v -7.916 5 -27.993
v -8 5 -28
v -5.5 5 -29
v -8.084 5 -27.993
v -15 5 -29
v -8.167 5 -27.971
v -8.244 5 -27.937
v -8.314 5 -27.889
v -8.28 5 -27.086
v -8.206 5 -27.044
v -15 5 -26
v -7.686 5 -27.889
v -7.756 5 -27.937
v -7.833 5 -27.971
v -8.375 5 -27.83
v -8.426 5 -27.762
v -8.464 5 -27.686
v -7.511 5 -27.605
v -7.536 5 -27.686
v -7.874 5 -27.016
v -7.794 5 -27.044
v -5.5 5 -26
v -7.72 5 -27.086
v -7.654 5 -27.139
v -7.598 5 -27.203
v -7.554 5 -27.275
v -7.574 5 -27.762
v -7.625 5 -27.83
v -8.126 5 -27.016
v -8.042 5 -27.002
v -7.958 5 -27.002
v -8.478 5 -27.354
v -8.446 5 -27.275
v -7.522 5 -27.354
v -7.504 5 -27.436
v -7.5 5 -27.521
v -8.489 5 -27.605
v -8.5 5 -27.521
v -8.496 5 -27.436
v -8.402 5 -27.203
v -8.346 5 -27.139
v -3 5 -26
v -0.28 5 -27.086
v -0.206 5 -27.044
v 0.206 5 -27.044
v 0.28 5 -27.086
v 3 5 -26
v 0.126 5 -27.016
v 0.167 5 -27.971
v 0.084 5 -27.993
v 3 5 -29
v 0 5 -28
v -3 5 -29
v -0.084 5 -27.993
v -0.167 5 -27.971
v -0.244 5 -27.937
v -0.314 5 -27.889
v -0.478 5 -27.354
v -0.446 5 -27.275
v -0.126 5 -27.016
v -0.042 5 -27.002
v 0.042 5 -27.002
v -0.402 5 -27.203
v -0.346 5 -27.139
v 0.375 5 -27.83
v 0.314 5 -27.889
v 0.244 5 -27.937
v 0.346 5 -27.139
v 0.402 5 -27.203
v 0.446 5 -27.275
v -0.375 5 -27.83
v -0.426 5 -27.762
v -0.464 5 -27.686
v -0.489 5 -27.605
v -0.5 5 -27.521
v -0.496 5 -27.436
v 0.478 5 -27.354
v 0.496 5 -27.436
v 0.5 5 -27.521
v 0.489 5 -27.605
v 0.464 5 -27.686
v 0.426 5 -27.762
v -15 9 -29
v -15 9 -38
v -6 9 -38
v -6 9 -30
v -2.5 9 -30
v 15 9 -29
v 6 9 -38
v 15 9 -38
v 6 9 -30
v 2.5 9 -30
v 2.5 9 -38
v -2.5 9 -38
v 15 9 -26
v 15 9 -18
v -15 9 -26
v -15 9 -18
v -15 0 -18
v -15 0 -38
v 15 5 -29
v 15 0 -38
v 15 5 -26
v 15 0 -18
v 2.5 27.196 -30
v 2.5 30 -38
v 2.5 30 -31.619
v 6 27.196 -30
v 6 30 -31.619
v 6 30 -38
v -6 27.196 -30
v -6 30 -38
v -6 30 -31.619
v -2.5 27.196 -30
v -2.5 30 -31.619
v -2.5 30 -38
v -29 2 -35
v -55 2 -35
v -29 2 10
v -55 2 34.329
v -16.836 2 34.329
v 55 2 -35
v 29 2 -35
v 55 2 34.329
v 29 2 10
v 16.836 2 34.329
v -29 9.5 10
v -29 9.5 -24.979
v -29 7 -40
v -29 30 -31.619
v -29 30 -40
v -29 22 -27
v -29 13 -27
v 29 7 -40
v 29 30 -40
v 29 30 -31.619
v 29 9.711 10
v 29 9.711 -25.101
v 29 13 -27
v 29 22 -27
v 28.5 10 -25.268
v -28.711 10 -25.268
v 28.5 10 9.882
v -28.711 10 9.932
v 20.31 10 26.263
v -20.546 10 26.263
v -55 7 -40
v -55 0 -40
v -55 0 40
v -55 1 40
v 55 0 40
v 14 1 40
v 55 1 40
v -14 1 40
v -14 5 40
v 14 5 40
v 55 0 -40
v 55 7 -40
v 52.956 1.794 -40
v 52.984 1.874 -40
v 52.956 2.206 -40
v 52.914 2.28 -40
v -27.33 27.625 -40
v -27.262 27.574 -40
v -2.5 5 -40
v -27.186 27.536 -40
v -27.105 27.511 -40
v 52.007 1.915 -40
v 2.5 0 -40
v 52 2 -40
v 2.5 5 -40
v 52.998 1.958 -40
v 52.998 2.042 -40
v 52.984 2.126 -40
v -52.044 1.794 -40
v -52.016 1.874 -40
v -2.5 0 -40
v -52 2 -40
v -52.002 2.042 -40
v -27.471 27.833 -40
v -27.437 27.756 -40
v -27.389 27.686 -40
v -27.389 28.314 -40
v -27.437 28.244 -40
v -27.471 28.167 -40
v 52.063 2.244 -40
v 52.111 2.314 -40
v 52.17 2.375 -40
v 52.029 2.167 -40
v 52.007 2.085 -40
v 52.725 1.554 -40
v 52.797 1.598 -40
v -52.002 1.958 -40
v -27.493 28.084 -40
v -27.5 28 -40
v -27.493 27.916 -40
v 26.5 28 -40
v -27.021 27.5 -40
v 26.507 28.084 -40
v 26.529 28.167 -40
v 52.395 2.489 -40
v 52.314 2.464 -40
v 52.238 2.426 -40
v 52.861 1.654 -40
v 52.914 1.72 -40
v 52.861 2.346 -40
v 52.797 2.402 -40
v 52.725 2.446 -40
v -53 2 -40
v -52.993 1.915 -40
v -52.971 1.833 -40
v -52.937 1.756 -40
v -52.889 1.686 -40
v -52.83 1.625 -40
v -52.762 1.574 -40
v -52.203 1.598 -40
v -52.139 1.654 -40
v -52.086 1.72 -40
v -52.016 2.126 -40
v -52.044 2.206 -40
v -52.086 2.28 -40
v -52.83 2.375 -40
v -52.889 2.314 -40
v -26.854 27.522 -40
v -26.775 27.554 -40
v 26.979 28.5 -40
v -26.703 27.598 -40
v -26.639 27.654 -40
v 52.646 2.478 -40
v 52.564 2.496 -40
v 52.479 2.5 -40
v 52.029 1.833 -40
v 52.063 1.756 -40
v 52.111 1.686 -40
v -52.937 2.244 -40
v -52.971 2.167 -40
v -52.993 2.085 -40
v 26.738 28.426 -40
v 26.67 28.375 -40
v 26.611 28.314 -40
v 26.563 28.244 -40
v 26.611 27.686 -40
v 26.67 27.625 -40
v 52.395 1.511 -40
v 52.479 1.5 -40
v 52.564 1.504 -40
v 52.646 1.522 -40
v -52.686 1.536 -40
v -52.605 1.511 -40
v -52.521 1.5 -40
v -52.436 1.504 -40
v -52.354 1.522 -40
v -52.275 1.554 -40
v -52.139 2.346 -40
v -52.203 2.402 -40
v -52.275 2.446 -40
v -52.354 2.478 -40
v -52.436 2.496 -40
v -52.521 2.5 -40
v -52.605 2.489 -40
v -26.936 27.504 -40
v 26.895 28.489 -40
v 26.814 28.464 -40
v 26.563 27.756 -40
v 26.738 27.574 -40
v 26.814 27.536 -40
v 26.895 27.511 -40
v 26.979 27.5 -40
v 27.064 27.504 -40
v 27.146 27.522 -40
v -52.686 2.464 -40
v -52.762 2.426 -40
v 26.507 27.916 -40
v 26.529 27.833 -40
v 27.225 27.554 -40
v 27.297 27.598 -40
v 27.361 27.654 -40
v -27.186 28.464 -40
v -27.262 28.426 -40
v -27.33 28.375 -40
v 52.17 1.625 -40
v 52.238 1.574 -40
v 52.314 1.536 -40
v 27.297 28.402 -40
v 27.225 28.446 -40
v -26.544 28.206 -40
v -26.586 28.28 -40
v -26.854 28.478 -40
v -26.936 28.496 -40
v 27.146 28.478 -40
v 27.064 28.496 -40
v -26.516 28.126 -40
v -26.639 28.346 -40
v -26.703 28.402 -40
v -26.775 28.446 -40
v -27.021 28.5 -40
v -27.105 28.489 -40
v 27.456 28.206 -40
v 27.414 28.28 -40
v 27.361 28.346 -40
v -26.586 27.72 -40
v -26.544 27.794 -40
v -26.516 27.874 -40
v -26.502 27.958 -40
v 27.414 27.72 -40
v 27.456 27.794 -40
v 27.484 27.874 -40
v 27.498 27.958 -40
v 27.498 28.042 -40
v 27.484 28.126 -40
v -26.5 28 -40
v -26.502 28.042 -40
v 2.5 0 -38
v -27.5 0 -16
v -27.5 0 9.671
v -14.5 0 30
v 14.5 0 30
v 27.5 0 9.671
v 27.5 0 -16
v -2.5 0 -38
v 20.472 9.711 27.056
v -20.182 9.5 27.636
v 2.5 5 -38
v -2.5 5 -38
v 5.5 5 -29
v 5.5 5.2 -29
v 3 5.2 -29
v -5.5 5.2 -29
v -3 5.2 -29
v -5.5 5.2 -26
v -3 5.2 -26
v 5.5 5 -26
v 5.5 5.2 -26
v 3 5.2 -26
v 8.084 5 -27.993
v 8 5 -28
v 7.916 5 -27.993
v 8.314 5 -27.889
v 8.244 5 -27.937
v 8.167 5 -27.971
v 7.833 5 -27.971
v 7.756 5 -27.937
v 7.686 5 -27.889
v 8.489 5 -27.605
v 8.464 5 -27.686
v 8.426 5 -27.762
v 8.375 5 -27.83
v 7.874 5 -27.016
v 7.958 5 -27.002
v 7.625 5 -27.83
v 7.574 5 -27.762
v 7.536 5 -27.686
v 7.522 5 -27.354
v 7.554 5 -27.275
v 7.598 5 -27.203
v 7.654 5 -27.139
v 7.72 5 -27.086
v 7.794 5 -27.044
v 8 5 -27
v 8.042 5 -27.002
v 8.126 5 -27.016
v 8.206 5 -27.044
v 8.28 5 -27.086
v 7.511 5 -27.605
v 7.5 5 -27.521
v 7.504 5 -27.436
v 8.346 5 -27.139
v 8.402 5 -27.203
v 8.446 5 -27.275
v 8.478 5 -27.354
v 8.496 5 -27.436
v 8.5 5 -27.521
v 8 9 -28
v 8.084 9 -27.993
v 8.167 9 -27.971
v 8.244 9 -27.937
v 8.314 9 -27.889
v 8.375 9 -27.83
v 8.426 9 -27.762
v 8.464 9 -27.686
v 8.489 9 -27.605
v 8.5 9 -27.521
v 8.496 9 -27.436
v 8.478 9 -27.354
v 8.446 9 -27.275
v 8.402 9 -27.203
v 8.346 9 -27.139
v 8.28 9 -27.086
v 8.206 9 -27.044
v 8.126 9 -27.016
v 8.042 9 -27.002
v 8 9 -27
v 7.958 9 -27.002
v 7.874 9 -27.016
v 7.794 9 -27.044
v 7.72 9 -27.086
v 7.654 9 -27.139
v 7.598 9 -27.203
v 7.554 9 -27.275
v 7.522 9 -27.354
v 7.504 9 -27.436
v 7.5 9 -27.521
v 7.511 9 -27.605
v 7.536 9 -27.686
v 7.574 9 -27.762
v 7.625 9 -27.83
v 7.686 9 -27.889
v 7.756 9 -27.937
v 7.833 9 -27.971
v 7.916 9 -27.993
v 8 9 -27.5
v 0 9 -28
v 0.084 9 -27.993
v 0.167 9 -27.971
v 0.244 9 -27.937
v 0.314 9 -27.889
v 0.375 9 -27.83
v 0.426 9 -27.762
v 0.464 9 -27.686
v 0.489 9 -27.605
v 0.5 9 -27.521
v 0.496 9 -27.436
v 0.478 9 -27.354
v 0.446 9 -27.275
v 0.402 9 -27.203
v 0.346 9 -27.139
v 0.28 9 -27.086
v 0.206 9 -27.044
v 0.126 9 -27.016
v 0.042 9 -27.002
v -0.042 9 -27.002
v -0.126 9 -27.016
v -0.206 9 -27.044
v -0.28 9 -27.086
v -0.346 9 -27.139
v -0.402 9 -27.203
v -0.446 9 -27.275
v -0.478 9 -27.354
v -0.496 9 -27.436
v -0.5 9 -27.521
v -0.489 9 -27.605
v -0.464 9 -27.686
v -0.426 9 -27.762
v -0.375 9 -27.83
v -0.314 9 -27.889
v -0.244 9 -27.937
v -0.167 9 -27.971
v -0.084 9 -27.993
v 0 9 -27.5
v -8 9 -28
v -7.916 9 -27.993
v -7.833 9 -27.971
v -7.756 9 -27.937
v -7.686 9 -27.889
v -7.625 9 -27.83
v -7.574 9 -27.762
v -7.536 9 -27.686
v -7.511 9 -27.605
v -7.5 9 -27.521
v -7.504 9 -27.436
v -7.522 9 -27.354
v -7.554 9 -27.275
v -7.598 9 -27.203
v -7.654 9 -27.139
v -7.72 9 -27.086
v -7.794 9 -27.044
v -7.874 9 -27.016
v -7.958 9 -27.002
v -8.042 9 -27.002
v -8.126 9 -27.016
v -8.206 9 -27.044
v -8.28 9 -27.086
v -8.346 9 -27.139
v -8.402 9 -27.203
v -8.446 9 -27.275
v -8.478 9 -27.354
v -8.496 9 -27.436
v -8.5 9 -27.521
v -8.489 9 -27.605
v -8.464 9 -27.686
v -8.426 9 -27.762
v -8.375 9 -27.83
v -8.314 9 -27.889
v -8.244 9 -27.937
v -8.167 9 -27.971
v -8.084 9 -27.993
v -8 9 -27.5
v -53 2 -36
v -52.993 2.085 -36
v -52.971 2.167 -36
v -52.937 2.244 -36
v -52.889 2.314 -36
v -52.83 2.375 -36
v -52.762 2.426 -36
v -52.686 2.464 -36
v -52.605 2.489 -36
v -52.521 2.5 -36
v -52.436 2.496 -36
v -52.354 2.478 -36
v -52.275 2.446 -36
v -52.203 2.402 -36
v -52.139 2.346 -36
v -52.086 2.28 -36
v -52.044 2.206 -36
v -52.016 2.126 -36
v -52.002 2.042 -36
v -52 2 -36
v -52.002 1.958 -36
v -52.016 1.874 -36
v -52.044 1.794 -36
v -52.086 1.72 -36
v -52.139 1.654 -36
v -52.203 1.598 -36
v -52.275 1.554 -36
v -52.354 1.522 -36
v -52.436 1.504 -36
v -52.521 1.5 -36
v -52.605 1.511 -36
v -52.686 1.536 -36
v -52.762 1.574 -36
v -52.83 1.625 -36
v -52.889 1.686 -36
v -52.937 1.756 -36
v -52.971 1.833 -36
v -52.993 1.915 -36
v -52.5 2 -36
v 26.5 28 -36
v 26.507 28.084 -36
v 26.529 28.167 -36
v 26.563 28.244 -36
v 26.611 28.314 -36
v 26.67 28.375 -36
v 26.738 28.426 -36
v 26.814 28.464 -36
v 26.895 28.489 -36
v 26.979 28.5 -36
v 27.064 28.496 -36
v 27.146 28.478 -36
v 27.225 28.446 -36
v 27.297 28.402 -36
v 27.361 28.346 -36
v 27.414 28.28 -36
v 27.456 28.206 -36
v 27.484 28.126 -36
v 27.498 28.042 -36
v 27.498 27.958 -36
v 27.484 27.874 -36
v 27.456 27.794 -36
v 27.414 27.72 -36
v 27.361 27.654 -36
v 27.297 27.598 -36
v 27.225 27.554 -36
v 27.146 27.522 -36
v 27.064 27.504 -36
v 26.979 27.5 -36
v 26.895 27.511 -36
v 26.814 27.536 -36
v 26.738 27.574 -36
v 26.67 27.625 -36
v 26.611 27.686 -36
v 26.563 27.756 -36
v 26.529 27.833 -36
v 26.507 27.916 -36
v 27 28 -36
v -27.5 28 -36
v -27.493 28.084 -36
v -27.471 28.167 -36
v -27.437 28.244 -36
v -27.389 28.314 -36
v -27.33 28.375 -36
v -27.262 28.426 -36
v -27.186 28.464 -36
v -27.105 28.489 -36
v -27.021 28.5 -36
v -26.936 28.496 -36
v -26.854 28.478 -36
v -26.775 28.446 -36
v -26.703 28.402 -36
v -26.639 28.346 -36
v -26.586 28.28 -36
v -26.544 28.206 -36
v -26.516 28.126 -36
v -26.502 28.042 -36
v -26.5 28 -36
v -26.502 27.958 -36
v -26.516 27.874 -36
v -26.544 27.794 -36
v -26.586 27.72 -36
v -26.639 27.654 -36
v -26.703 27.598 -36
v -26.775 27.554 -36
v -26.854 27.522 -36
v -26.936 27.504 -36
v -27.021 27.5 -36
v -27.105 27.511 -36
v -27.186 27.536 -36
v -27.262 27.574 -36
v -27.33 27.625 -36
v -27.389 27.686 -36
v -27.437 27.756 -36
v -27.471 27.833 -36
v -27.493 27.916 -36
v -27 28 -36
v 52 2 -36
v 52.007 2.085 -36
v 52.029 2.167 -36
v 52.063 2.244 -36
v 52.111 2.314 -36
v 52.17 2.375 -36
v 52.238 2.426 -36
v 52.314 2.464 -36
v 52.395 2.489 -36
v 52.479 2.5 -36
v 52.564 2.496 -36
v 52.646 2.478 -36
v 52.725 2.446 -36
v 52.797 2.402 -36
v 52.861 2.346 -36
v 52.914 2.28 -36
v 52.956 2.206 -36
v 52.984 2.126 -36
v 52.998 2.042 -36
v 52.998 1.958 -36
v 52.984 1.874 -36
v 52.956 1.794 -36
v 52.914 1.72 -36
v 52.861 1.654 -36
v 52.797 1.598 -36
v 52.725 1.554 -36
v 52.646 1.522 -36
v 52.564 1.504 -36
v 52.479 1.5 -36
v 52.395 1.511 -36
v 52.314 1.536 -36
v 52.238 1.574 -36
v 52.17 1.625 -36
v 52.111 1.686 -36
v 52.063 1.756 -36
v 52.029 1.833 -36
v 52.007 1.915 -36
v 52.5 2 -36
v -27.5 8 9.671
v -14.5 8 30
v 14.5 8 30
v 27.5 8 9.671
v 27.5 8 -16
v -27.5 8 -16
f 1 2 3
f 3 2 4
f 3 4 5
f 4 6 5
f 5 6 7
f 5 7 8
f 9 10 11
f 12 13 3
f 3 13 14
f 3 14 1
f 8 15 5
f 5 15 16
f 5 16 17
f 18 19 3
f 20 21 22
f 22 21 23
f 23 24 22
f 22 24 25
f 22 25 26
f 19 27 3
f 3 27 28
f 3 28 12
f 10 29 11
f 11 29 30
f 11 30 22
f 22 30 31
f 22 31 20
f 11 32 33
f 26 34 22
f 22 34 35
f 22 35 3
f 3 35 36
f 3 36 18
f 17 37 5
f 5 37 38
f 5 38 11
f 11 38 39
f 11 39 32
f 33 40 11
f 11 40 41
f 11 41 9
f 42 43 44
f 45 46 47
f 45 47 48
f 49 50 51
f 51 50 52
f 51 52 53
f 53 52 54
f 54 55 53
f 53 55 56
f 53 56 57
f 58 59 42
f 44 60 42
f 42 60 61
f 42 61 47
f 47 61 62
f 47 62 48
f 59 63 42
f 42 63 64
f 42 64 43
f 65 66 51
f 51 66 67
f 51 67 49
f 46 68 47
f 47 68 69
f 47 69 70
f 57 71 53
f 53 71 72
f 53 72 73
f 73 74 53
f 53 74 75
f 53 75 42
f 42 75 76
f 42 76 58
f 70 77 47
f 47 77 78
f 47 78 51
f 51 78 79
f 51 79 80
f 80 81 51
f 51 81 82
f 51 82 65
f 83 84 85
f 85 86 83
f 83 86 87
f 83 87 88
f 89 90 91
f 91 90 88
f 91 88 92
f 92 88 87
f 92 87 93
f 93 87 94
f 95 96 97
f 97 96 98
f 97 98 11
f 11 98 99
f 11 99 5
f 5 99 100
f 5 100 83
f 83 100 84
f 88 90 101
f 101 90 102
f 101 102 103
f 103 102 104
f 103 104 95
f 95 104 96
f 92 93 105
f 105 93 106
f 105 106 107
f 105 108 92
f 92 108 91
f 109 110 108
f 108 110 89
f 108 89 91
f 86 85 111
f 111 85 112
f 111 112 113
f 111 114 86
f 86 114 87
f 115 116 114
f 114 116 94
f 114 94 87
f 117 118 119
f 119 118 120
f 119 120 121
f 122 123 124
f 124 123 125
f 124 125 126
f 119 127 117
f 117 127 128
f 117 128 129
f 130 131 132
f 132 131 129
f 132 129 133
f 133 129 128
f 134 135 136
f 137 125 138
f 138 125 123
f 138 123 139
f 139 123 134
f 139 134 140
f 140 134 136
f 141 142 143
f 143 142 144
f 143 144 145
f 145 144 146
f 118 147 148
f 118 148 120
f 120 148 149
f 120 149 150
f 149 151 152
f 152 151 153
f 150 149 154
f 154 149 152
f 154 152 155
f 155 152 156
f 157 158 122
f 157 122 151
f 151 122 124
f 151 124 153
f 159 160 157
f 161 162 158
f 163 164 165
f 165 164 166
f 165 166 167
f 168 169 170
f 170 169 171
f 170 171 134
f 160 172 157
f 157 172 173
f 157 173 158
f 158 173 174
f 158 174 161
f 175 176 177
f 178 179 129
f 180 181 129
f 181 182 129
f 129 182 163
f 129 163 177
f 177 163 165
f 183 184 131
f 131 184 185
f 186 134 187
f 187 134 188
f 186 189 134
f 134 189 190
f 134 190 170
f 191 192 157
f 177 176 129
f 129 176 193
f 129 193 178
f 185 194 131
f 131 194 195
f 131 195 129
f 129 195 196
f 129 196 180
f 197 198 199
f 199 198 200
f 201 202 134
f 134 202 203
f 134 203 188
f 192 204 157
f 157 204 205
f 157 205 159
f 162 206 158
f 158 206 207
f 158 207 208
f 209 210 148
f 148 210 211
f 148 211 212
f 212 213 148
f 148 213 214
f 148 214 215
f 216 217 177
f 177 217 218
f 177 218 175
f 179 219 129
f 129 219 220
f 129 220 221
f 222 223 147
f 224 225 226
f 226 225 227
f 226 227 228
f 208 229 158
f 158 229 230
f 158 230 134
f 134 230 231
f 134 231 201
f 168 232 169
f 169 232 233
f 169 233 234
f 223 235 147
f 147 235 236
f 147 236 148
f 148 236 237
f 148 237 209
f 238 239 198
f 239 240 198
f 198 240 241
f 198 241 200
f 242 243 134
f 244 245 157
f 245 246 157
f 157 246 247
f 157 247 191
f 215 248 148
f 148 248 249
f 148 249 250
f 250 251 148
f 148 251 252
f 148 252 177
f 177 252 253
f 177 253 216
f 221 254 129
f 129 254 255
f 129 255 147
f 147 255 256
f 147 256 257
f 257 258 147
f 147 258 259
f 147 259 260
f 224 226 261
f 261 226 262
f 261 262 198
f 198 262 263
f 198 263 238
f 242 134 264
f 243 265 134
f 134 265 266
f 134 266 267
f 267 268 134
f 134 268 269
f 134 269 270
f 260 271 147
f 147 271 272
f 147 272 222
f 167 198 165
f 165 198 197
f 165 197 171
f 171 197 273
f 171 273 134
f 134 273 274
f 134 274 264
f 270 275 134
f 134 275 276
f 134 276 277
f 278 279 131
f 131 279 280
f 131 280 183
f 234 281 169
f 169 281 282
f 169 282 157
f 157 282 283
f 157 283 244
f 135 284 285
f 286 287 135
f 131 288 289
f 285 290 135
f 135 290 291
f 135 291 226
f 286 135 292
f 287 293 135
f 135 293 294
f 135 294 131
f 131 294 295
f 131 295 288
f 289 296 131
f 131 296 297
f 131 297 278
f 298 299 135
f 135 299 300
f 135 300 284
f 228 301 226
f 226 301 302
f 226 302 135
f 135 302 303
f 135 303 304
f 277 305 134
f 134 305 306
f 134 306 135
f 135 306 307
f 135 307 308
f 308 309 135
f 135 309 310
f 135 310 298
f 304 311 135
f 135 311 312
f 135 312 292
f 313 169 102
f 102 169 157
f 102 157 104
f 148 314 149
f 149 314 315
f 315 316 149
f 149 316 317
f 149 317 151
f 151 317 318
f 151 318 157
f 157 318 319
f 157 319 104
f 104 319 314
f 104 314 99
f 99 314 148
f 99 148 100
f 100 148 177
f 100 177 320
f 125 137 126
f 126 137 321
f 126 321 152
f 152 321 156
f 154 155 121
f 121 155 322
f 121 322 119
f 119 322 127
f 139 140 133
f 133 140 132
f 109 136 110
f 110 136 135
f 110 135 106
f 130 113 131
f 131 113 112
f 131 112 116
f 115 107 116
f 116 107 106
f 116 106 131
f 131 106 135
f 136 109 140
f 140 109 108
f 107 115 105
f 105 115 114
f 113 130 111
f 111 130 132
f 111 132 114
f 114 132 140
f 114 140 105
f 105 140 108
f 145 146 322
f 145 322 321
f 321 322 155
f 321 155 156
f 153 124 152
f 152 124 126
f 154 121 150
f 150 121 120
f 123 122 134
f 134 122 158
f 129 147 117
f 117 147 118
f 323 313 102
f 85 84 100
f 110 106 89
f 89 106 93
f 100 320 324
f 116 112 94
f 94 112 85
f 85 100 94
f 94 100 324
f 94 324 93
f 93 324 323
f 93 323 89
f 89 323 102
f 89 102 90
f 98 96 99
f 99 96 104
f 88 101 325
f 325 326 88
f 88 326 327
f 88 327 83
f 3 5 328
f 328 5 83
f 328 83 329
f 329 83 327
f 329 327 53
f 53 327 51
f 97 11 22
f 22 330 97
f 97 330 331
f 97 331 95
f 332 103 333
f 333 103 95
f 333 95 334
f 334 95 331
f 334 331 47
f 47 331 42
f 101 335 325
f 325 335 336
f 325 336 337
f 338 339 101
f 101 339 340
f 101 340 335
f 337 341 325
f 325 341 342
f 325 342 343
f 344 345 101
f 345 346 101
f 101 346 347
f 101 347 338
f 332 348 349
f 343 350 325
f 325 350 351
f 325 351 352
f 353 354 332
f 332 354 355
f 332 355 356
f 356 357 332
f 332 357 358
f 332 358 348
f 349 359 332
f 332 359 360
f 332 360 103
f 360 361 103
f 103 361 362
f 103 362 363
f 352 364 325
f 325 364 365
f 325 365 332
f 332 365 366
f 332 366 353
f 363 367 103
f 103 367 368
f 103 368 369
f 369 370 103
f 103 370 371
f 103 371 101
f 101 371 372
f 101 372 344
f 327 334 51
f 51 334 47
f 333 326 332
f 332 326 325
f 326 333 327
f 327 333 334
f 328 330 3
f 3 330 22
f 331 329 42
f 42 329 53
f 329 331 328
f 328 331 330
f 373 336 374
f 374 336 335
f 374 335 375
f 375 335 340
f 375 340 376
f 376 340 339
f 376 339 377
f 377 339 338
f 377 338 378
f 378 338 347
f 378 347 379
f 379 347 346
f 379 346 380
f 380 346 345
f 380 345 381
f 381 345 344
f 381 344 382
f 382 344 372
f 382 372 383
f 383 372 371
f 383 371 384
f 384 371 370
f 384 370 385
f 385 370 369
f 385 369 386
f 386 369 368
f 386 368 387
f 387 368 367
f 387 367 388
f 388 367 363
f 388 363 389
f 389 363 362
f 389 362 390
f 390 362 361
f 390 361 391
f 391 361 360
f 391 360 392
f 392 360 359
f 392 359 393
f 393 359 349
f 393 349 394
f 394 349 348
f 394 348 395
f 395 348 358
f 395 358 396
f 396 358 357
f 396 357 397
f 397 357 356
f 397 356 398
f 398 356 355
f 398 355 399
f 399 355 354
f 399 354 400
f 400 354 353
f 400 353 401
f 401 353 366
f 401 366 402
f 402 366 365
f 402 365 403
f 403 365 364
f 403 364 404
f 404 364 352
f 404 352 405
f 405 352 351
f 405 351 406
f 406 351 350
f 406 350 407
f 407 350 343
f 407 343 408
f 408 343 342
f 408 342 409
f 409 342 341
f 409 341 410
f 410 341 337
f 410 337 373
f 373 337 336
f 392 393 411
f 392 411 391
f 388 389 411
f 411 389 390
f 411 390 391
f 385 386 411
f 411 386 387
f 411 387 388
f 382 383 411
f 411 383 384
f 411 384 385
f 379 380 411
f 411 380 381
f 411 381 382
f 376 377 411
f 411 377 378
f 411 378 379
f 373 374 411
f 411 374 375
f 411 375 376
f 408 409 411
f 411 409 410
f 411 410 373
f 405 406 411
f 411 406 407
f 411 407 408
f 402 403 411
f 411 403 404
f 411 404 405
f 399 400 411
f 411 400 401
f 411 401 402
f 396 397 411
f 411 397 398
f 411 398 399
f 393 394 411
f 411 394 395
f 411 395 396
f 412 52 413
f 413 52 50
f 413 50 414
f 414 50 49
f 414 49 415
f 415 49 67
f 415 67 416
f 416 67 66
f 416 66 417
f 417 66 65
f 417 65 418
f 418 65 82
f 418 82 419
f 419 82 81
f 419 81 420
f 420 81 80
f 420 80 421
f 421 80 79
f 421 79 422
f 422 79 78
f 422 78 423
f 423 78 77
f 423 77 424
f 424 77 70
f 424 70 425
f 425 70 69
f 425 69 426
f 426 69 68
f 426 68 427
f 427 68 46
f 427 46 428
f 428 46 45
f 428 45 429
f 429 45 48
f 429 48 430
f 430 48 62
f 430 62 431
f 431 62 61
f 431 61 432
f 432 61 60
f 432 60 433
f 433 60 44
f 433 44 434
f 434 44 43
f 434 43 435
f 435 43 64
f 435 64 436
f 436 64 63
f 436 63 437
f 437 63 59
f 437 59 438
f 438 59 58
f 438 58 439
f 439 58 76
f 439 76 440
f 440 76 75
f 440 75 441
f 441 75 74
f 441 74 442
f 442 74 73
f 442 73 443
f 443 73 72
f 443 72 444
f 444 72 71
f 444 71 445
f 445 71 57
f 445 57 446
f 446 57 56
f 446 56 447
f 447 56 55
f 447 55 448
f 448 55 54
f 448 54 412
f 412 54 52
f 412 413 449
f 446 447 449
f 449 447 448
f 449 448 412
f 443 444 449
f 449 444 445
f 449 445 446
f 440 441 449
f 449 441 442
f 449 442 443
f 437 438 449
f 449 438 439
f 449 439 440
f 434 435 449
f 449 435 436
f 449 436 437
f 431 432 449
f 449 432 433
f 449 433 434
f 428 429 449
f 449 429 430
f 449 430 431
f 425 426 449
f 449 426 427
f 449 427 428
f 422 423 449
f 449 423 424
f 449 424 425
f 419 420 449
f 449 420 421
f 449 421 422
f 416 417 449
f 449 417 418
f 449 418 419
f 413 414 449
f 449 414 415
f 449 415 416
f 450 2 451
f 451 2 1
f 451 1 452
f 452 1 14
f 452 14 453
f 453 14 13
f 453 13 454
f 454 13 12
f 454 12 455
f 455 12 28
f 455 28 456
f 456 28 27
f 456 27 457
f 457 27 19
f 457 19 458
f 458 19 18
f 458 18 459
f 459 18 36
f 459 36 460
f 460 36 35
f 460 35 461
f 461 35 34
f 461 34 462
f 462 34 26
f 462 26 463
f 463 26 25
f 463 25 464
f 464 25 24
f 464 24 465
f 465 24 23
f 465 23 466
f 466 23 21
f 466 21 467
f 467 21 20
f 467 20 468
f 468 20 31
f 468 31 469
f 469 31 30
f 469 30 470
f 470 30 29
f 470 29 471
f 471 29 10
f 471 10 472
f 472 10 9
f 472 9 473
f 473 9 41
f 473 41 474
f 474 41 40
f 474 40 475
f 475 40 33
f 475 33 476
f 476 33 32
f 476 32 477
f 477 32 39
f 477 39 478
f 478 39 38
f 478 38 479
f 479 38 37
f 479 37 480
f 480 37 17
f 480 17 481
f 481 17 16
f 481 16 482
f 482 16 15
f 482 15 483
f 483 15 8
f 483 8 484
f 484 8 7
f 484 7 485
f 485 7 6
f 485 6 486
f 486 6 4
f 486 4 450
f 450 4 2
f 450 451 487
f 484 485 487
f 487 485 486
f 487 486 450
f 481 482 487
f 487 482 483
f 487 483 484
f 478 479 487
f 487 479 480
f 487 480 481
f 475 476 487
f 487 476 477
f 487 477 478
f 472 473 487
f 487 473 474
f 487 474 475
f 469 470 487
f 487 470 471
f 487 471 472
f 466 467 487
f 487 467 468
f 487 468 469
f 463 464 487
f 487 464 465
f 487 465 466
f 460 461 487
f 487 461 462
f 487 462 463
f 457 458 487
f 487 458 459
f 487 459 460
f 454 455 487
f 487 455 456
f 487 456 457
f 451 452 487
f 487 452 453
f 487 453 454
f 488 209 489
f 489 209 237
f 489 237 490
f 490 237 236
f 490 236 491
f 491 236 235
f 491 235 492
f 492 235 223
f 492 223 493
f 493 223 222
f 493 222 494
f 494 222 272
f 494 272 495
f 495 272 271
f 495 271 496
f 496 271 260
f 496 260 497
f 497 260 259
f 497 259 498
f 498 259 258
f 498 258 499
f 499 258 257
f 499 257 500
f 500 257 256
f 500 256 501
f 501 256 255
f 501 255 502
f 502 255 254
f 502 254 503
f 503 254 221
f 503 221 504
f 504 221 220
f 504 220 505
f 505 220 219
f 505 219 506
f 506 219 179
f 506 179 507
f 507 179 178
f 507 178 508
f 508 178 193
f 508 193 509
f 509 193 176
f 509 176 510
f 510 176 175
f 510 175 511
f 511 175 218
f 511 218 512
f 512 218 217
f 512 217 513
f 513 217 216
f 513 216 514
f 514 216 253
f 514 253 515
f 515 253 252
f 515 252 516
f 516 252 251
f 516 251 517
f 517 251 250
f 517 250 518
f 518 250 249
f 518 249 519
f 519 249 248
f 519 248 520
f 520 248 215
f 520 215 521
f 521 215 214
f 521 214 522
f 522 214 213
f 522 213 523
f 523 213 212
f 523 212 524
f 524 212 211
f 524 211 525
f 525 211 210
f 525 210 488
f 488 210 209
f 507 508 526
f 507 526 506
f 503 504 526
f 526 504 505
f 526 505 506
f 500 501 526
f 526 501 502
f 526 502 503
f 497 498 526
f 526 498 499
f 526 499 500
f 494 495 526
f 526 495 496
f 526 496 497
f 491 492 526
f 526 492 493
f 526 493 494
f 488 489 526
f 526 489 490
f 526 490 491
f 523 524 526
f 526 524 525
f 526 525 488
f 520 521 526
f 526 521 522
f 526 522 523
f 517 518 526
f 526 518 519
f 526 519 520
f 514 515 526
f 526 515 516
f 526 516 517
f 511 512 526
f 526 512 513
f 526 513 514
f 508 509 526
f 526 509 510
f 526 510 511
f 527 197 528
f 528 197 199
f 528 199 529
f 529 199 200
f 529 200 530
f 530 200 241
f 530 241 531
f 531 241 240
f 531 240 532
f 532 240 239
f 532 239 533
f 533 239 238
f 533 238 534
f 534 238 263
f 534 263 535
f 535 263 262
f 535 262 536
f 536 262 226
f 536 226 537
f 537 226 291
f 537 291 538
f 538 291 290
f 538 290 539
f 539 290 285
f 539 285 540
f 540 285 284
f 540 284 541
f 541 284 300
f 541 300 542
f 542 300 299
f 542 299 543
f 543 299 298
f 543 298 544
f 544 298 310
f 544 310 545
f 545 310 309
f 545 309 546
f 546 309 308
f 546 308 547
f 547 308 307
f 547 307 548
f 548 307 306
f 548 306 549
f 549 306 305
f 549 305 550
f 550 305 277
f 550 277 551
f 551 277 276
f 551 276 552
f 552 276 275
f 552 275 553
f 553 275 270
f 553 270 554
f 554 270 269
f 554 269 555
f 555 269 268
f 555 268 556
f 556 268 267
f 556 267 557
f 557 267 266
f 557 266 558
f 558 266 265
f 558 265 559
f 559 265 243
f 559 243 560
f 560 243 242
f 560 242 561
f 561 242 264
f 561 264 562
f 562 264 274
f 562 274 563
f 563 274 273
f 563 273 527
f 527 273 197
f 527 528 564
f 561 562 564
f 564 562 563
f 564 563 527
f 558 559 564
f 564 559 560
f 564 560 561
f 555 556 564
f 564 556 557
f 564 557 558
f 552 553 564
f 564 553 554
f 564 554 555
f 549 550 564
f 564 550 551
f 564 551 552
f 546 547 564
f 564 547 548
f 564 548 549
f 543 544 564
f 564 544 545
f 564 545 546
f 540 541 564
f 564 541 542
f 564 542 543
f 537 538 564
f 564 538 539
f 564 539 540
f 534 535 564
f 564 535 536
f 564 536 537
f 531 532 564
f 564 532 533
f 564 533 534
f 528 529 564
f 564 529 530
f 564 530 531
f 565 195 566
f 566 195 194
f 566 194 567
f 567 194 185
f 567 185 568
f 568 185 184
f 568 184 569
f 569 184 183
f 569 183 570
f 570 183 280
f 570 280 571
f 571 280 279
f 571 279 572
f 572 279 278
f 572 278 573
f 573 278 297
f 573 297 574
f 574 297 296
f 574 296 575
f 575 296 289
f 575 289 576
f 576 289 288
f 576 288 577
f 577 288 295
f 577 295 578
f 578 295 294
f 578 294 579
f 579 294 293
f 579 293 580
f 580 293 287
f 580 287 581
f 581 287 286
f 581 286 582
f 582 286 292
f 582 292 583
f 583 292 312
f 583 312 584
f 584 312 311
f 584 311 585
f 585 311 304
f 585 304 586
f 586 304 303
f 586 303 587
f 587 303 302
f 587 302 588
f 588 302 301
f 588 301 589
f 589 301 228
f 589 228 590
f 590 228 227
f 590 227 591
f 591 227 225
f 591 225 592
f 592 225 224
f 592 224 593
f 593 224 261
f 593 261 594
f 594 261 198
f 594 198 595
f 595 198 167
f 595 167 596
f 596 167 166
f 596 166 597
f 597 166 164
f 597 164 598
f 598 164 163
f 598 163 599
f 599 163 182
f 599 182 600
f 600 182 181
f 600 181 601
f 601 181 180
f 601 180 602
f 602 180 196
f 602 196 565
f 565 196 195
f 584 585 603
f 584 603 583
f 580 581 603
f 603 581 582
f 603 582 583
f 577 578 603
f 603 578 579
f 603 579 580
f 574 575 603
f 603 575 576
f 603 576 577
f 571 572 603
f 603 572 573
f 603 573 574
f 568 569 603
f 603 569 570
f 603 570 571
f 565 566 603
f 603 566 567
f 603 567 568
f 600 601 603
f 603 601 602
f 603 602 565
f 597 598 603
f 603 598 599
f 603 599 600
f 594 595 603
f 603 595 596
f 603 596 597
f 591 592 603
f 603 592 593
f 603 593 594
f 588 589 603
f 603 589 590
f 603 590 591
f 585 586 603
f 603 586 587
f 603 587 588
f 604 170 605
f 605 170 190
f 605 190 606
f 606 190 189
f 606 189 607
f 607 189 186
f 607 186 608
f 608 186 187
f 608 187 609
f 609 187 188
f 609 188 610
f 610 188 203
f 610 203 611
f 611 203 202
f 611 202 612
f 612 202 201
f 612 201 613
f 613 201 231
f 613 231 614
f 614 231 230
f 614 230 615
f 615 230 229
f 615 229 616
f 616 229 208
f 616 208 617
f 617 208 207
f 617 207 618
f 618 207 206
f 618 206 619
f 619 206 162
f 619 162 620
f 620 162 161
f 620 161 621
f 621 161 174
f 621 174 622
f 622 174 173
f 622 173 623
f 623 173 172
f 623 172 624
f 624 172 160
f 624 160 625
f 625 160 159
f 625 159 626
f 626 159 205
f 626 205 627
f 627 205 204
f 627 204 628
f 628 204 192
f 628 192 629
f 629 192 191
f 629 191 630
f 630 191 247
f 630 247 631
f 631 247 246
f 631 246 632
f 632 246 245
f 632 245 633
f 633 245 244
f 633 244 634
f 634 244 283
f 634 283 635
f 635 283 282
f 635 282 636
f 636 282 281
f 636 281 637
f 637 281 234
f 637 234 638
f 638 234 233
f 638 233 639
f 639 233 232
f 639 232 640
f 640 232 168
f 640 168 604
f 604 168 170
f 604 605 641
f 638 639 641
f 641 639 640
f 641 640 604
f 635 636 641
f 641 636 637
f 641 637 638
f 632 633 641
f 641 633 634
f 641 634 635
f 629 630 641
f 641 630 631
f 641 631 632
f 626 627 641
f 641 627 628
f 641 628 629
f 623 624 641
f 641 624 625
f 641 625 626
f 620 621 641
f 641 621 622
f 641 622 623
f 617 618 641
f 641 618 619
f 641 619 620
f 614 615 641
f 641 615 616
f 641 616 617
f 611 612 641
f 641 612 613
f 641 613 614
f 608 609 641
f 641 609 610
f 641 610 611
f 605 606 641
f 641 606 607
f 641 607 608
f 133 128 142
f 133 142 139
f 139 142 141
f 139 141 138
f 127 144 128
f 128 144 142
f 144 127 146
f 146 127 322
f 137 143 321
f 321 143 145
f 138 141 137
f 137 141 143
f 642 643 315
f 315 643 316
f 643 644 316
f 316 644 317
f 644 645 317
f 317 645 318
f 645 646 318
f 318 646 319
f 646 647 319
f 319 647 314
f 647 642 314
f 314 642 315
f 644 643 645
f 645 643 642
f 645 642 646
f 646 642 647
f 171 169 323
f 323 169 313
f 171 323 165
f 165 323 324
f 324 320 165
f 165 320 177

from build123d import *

# Parameters (mm, degrees)
SKETCH_1_W                  = 110
SKETCH_1_H                  = 80
EXTRUDE_1_DEPTH             = 2
SKETCH_2_W                  = 58
SKETCH_2_H                  = 80
EXTRUDE_2_DEPTH             = 8
CUT_EXTRUDE_1_DEPTH         = 8
SKETCH_4_W                  = 58
SKETCH_4_H                  = 13
EXTRUDE_3_DEPTH             = 28
CHAMFER_1_SIZE              = 8
CHAMFER_1_SIZE2             = 4.618802154
CHAMFER_2_SIZE              = 5
CHAMFER_2_SIZE2             = 13.737387097
CHAMFER_3_SIZE              = 1
CHAMFER_3_SIZE2             = 5.67128182
EXTRUDE_5_REACH             = 28
EXTRUDE_5_DIRECTION_2_REACH = 86
SKETCH_5_W                  = 3.5
SKETCH_5_H                  = 8
CUT_EXTRUDE_2_DEPTH         = 31
SKETCH_6_W                  = 30
SKETCH_6_H                  = 20
CUT_EXTRUDE_3_DEPTH         = 9
SKETCH_7_W                  = 30
SKETCH_7_H                  = 3
EXTRUDE_4_DEPTH             = 4
SKETCH_8_W                  = 2.5
SKETCH_8_H                  = 3
CUT_EXTRUDE_4_DEPTH         = 0.2
SKETCH_10_R                 = 0.5
CUT_EXTRUDE_5_DEPTH         = 4
SKETCH_11_R                 = 0.5
CUT_EXTRUDE_6_DEPTH         = 4
CHAMFER_4_SIZE              = 3
CHAMFER_4_SIZE2             = 1.732050808
CHAMFER_5_SIZE              = 0.5
CHAMFER_5_SIZE2             = 0.288675135
CHAMFER_5_PART_2_SIZE       = 0.5
CHAMFER_5_PART_2_SIZE2      = 0.288675135
CHAMFER_5_PART_3_SIZE       = 0.5
CHAMFER_5_PART_3_SIZE2      = 0.288675135
CUT_EXTRUDE_7_DEPTH         = 8
SKETCH_14_W                 = 5
SKETCH_14_H                 = 10
CUT_EXTRUDE_8_DEPTH         = 3


with BuildPart() as part:
    # 草图1 → 凸台-拉伸1 (new body)
    with BuildSketch(Plane(origin=(0, 0, 0), x_dir=(1, 0, 0), z_dir=(0, 1, 0))):
        Rectangle(SKETCH_1_W, SKETCH_1_H)
    extrude(amount=EXTRUDE_1_DEPTH)

    # 草图2 → 凸台-拉伸2 (add)
    with BuildSketch(Plane(origin=(0, 2, 0), x_dir=(1, 0, 0), z_dir=(0, 1, 0))):
        Rectangle(SKETCH_2_W, SKETCH_2_H)
    extrude(amount=EXTRUDE_2_DEPTH)

    # 草图3 → 切除-拉伸1 (cut)
    with BuildSketch(Plane(origin=(0, 10, 0), x_dir=(1, 0, 0), z_dir=(0, 1, 0))):
        Polygon((-14, -40), (-29, -10), (-29, -40), align=None)
        Polygon((29, -40), (14, -40), (29, -10), align=None)
    extrude(amount=-CUT_EXTRUDE_1_DEPTH, mode=Mode.SUBTRACT)

    # 草图4 → 凸台-拉伸3 (add)
    with BuildSketch(Plane(origin=(0, 2, 0), x_dir=(1, 0, 0), z_dir=(0, 1, 0))):
        with Locations((0, 33.5)):
            Rectangle(SKETCH_4_W, SKETCH_4_H)
    extrude(amount=EXTRUDE_3_DEPTH)

    # 倒角1
    chamfer_1_edges = [part.edges().sort_by_distance(p)[0] for p in [
        (0, 30, -27),
    ]]
    chamfer_1_side = [part.faces().sort_by_distance(p)[0] for p in [
        (0, 20, -27),
    ]]
    chamfer(chamfer_1_edges, length=CHAMFER_1_SIZE, length2=CHAMFER_1_SIZE2, reference=chamfer_1_side[0])

    # 倒角2
    chamfer_2_edges = [part.edges().sort_by_distance(p)[0] for p in [
        (0, 10, 40),
    ]]
    chamfer_2_side = [part.faces().sort_by_distance(p)[0] for p in [
        (0, 3.522522523, 40),
    ]]
    chamfer(chamfer_2_edges, length=CHAMFER_2_SIZE, length2=CHAMFER_2_SIZE2, reference=chamfer_2_side[0])

    # 倒角3
    chamfer_3_edges = [part.edges().sort_by_distance(p)[0] for p in [
        (34.5, 2, 40),
        (-34.5, 2, 40),
    ]]
    chamfer_3_side = [part.faces().sort_by_distance(p)[0] for p in [
        (0, 1.690789474, 40),
    ]]
    chamfer(chamfer_3_edges, length=CHAMFER_3_SIZE, length2=CHAMFER_3_SIZE2, reference=chamfer_3_side[0])

    # 凸台-拉伸5: up to this face of the body (flat: up to its plane)
    extrude_5_end = Plane(part.part.faces().sort_by_distance((55, 0.987971654, -0.687592684))[0])
    # 草图12 → 凸台-拉伸5 (add, up to the picked face)
    with BuildSketch(Plane(origin=(29, 0, 0), x_dir=(0, 0, -1), z_dir=(1, 0, 0)), mode=Mode.PRIVATE) as extrude_5_sk1:
        Polygon((40, 2), (40, 7), (35, 2), align=None)
    extrude_5_tool1 = split(extrude(extrude_5_sk1.sketch, amount=EXTRUDE_5_REACH, mode=Mode.PRIVATE), bisect_by=extrude_5_end, keep=Keep.BOTH, mode=Mode.PRIVATE)
    add(extrude_5_tool1.solids().sort_by_distance((29, 3.666667, -38.333333))[0])

    # 凸台-拉伸5 direction 2: up to this face of the body (flat: up to its plane)
    extrude_5_direction_2_end = Plane(part.part.faces().sort_by_distance((-55, 0.987971654, -0.687592684))[0])
    # 草图12 → 凸台-拉伸5 direction 2 (add, up to the picked face)
    with BuildSketch(Plane(origin=(29, 0, 0), x_dir=(0, 0, -1), z_dir=(1, 0, 0)), mode=Mode.PRIVATE) as extrude_5_direction_2_sk1:
        Polygon((40, 2), (40, 7), (35, 2), align=None)
    extrude_5_direction_2_tool1 = split(extrude(extrude_5_direction_2_sk1.sketch, amount=-EXTRUDE_5_DIRECTION_2_REACH, mode=Mode.PRIVATE), bisect_by=extrude_5_direction_2_end, keep=Keep.BOTH, mode=Mode.PRIVATE)
    add(extrude_5_direction_2_tool1.solids().sort_by_distance((29, 3.666667, -38.333333))[0])

    # 草图5 → 切除-拉伸2 (cut, through all)
    with BuildSketch(Plane.XZ):
        with Locations((-4.25, -34)):
            Rectangle(SKETCH_5_W, SKETCH_5_H)
        with Locations((4.25, -34)):
            Rectangle(SKETCH_5_W, SKETCH_5_H)
    extrude(amount=-CUT_EXTRUDE_2_DEPTH, mode=Mode.SUBTRACT)

    # 草图6 → 切除-拉伸3 (cut)
    with BuildSketch(Plane.XZ):
        with Locations((0, -28)):
            Rectangle(SKETCH_6_W, SKETCH_6_H)
    extrude(amount=-CUT_EXTRUDE_3_DEPTH, mode=Mode.SUBTRACT)

    # 草图7 → 凸台-拉伸4 (add)
    with BuildSketch(Plane.XZ.offset(-9)):
        with Locations((0, -27.5)):
            Rectangle(SKETCH_7_W, SKETCH_7_H)
    extrude(amount=EXTRUDE_4_DEPTH)

    # 草图8 → 切除-拉伸4 (cut)
    with BuildSketch(Plane.XZ.offset(-5)):
        with Locations((-4.25, -27.5)):
            Rectangle(SKETCH_8_W, SKETCH_8_H)
        with Locations((4.25, -27.5)):
            Rectangle(SKETCH_8_W, SKETCH_8_H)
    extrude(amount=-CUT_EXTRUDE_4_DEPTH, mode=Mode.SUBTRACT)

    # 草图10 → 切除-拉伸5 (cut)
    with BuildSketch(Plane.XZ.offset(-5)):
        with Locations((-8, -27.5)):
            Circle(SKETCH_10_R)
        with Locations((8, -27.5)):
            Circle(SKETCH_10_R)
        with Locations((0, -27.5)):
            Circle(SKETCH_10_R)
    extrude(amount=-CUT_EXTRUDE_5_DEPTH, mode=Mode.SUBTRACT)

    # 草图11 → 切除-拉伸6 (cut)
    with BuildSketch(Plane(origin=(0, 0, -40), x_dir=(-1, 0, 0), z_dir=(0, 0, -1))):
        with Locations((-52.5, 2)):
            Circle(SKETCH_11_R)
        with Locations((52.5, 2)):
            Circle(SKETCH_11_R)
        with Locations((-27, 28)):
            Circle(SKETCH_11_R)
        with Locations((27, 28)):
            Circle(SKETCH_11_R)
    extrude(amount=-CUT_EXTRUDE_6_DEPTH, mode=Mode.SUBTRACT)

    # 倒角4
    chamfer_4_edges = [part.edges().sort_by_distance(p)[0] for p in [
        (0, 10, -27),
    ]]
    chamfer_4_side = [part.faces().sort_by_distance(p)[0] for p in [
        (0, 16, -27),
    ]]
    chamfer(chamfer_4_edges, length=CHAMFER_4_SIZE, length2=CHAMFER_4_SIZE2, reference=chamfer_4_side[0])

    # 倒角5
    chamfer_5_edges = [part.edges().sort_by_distance(p)[0] for p in [
        (29, 10, -7.633974596),
        (24.934346774, 10, 18.131306451),
    ]]
    chamfer_5_side = [part.faces().sort_by_distance(p)[0] for p in [
        (0, 10, -0.444462332),
    ]]
    chamfer(chamfer_5_edges, length=CHAMFER_5_SIZE, length2=CHAMFER_5_SIZE2, reference=chamfer_5_side[0])

    # 倒角5 part 2
    chamfer_5_part_2_edges = [part.edges().sort_by_distance(p)[0] for p in [
        (-29, 10, -7.633974596),
    ]]
    chamfer_5_part_2_side = [part.faces().sort_by_distance(p)[0] for p in [
        (-29, 17.5, -27.573061951),
    ]]
    chamfer(chamfer_5_part_2_edges, length=CHAMFER_5_PART_2_SIZE, length2=CHAMFER_5_PART_2_SIZE2, reference=chamfer_5_part_2_side[0])

    # 倒角5 part 3
    chamfer_5_part_3_edges = [part.edges().sort_by_distance(p)[0] for p in [
        (-24.934346774, 10, 18.131306451),
    ]]
    chamfer_5_part_3_side = [part.faces().sort_by_distance(p)[0] for p in [
        (-22.269129124, 5.556709809, 23.461741751),
    ]]
    chamfer(chamfer_5_part_3_edges, length=CHAMFER_5_PART_3_SIZE, length2=CHAMFER_5_PART_3_SIZE2, reference=chamfer_5_part_3_side[0])

    # 草图13 → 切除-拉伸7 (cut)
    with BuildSketch(Plane.XZ):
        Polygon((27.5, -16), (-27.5, -16), (-27.5, 9.67128182), (-14.5, 30), (14.5, 30), (27.5, 9.67128182), align=None)
    extrude(amount=-CUT_EXTRUDE_7_DEPTH, mode=Mode.SUBTRACT)

    # 草图14 → 切除-拉伸8 (cut)
    with BuildSketch(Plane(origin=(0, 0, -40), x_dir=(-1, 0, 0), z_dir=(0, 0, -1))):
        Rectangle(SKETCH_14_W, SKETCH_14_H)
    extrude(amount=-CUT_EXTRUDE_8_DEPTH, mode=Mode.SUBTRACT)


solid = part.part
